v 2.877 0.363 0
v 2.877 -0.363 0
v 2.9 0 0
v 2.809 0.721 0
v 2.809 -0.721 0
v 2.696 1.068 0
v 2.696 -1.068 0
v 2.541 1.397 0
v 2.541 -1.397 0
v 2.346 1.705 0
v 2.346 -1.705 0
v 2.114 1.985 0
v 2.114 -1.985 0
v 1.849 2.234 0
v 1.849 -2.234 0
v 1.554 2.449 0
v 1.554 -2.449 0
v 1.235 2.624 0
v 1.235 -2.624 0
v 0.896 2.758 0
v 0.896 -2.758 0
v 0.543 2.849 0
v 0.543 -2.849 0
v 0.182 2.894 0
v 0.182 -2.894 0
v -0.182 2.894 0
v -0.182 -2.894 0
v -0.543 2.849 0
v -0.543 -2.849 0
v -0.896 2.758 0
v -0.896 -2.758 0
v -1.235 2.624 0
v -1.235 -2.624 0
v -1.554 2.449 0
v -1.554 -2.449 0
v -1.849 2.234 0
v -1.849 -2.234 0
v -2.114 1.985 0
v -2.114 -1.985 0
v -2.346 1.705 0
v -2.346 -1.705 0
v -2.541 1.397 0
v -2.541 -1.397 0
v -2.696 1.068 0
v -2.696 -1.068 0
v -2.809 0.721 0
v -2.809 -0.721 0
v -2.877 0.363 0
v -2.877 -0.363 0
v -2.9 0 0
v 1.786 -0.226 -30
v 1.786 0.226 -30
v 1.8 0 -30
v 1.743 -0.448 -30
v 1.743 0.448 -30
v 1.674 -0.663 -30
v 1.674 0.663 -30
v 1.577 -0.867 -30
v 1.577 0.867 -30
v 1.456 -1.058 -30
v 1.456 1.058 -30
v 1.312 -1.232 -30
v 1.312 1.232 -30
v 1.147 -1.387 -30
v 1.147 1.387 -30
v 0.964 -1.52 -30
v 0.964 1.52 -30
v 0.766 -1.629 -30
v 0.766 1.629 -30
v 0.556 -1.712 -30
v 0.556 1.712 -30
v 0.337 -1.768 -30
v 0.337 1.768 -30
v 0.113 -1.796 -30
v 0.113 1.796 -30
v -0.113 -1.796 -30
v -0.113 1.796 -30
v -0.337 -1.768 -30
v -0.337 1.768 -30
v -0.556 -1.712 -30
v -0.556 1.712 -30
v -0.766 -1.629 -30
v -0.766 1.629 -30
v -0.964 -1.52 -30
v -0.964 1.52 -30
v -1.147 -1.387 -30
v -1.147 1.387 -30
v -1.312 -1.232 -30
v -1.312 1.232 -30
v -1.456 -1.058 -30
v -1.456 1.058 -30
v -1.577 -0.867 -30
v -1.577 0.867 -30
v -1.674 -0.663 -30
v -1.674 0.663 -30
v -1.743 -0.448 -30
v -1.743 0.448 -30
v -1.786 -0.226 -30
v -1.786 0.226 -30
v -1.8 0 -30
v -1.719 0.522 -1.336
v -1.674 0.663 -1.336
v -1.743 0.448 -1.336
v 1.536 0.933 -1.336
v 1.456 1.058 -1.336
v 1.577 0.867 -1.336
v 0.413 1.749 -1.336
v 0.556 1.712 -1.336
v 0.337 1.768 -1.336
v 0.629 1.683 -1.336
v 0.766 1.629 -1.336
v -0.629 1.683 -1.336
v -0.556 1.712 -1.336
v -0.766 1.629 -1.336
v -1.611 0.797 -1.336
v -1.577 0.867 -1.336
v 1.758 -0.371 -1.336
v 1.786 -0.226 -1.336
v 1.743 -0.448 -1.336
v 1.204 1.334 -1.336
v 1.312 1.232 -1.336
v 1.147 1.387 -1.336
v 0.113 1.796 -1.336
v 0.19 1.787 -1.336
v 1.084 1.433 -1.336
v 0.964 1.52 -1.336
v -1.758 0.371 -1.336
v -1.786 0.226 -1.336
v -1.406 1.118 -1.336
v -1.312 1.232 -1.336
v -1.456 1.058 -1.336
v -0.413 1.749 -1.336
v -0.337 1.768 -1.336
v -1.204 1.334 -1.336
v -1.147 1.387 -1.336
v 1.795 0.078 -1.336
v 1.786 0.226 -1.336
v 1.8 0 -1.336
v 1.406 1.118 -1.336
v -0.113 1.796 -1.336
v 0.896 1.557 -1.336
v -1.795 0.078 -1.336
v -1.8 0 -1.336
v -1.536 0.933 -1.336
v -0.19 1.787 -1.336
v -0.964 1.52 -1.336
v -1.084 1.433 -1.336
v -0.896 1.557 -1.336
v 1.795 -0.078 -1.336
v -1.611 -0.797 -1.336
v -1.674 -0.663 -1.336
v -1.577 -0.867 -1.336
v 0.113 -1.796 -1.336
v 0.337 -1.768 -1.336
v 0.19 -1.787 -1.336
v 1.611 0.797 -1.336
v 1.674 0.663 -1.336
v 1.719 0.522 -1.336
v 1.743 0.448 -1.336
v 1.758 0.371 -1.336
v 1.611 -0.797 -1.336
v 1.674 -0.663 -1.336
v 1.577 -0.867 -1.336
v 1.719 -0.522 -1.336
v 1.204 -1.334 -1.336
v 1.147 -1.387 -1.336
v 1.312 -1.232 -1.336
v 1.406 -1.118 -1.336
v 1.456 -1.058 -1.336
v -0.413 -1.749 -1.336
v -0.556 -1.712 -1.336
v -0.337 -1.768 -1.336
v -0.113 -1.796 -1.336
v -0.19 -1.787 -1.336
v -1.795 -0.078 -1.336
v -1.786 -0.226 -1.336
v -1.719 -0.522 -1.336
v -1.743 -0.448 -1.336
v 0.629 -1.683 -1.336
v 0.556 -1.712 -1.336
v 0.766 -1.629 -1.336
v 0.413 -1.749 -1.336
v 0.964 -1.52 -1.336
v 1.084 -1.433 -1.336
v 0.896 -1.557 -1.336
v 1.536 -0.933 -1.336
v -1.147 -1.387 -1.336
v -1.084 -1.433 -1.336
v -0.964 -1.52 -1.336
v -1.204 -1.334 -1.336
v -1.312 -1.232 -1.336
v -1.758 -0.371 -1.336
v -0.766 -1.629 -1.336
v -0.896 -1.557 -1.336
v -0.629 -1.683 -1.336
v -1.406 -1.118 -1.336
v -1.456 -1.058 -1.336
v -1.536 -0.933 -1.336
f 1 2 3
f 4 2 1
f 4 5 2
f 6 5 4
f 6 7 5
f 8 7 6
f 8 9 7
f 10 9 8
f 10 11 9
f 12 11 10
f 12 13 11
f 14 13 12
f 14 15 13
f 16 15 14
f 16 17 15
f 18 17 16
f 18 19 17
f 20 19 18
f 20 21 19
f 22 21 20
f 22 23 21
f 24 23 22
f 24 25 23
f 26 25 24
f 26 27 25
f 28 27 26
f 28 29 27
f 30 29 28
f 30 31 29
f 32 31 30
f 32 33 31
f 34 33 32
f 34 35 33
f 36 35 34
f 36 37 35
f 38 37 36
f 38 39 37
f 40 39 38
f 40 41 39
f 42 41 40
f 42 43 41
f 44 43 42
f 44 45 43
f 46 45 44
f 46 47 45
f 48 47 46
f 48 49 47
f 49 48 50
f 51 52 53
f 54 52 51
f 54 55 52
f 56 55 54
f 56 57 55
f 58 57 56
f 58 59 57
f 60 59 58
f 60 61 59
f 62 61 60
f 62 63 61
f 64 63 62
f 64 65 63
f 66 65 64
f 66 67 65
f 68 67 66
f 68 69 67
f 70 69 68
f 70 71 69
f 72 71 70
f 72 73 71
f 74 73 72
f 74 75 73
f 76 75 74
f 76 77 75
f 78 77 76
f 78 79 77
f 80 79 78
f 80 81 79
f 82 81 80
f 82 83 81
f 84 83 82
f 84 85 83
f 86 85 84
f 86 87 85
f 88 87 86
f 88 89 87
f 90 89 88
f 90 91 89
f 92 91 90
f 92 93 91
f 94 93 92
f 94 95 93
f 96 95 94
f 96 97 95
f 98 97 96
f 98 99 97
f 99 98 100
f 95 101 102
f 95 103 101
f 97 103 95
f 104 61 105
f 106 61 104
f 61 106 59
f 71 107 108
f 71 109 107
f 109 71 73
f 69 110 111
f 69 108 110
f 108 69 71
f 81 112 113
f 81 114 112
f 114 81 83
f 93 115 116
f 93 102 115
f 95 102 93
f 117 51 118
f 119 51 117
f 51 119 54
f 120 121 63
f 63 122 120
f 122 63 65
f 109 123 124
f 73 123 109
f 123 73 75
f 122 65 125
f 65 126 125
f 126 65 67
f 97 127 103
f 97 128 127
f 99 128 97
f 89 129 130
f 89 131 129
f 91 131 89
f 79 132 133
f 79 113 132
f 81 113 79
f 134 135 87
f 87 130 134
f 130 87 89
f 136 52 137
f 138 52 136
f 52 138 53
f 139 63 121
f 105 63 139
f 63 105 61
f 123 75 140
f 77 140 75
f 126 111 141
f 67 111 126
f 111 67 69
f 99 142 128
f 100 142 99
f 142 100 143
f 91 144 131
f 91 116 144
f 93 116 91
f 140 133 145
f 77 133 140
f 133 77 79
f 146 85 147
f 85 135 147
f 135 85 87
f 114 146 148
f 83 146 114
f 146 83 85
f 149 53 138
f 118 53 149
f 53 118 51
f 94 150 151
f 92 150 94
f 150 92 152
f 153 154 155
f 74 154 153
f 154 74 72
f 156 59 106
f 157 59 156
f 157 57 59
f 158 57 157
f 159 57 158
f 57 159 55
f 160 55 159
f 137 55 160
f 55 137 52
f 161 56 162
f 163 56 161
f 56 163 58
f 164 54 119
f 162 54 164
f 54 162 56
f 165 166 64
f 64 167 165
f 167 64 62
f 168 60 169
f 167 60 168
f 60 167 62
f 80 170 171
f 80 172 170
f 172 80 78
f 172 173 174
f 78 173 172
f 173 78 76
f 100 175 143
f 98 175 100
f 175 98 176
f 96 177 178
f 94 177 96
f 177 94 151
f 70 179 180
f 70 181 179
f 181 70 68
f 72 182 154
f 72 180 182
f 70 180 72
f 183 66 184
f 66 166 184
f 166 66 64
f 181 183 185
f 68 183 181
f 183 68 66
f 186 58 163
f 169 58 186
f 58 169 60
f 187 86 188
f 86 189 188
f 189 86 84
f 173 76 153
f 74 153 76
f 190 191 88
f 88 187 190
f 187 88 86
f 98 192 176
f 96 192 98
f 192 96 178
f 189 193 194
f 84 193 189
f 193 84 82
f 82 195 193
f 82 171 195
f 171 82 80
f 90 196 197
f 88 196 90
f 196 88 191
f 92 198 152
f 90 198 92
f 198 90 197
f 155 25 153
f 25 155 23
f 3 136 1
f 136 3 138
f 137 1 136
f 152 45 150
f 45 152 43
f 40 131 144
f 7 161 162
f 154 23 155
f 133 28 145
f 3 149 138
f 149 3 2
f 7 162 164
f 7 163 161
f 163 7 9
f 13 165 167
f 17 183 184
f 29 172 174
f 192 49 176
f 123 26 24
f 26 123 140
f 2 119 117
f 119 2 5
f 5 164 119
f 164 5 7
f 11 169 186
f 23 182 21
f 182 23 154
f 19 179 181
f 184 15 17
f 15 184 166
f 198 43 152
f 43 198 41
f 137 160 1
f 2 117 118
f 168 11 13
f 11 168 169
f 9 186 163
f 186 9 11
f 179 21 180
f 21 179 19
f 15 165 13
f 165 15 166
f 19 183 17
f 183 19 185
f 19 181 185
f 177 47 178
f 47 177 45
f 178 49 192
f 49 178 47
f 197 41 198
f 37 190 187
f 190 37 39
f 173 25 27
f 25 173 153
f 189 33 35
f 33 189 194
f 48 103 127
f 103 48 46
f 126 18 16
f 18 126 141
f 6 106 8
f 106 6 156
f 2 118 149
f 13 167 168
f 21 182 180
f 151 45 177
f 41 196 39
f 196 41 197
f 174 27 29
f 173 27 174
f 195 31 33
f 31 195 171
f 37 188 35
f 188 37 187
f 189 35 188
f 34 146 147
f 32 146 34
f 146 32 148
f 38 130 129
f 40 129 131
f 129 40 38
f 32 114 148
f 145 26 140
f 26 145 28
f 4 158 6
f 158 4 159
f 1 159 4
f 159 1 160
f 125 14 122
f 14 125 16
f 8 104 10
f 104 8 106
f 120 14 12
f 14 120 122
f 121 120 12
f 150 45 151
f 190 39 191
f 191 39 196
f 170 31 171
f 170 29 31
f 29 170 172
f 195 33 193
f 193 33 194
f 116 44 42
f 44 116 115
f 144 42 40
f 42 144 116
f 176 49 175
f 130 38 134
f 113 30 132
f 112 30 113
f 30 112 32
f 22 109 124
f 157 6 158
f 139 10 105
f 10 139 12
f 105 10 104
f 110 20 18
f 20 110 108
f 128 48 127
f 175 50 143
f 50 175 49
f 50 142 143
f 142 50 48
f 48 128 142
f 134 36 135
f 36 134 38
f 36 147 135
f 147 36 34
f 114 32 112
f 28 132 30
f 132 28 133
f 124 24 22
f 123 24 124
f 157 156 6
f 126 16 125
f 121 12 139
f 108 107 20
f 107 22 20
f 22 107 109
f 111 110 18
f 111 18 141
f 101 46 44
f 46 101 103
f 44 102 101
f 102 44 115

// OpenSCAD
$fn = 50;


difference() {
	union() {
		translate(v = [0, 0, 0]) {
			rotate(a = [0, 0, 0]) {
				difference() {
					union() {
						translate(v = [0, 0, -30.0000000000]) {
							cylinder(h = 30, r = 1.5000000000);
						}
						translate(v = [0, 0, -30.0000000000]) {
							cylinder(h = 30, r = 1.8000000000);
						}
						translate(v = [0, 0, -1.7000000000]) {
							cylinder(h = 1.7000000000, r1 = 1.5000000000, r2 = 2.9000000000);
						}
						translate(v = [0, 0, -30.0000000000]) {
							cylinder(h = 30, r = 1.5000000000);
						}
					}
					union();
				}
			}
		}
	}
	union();
}
